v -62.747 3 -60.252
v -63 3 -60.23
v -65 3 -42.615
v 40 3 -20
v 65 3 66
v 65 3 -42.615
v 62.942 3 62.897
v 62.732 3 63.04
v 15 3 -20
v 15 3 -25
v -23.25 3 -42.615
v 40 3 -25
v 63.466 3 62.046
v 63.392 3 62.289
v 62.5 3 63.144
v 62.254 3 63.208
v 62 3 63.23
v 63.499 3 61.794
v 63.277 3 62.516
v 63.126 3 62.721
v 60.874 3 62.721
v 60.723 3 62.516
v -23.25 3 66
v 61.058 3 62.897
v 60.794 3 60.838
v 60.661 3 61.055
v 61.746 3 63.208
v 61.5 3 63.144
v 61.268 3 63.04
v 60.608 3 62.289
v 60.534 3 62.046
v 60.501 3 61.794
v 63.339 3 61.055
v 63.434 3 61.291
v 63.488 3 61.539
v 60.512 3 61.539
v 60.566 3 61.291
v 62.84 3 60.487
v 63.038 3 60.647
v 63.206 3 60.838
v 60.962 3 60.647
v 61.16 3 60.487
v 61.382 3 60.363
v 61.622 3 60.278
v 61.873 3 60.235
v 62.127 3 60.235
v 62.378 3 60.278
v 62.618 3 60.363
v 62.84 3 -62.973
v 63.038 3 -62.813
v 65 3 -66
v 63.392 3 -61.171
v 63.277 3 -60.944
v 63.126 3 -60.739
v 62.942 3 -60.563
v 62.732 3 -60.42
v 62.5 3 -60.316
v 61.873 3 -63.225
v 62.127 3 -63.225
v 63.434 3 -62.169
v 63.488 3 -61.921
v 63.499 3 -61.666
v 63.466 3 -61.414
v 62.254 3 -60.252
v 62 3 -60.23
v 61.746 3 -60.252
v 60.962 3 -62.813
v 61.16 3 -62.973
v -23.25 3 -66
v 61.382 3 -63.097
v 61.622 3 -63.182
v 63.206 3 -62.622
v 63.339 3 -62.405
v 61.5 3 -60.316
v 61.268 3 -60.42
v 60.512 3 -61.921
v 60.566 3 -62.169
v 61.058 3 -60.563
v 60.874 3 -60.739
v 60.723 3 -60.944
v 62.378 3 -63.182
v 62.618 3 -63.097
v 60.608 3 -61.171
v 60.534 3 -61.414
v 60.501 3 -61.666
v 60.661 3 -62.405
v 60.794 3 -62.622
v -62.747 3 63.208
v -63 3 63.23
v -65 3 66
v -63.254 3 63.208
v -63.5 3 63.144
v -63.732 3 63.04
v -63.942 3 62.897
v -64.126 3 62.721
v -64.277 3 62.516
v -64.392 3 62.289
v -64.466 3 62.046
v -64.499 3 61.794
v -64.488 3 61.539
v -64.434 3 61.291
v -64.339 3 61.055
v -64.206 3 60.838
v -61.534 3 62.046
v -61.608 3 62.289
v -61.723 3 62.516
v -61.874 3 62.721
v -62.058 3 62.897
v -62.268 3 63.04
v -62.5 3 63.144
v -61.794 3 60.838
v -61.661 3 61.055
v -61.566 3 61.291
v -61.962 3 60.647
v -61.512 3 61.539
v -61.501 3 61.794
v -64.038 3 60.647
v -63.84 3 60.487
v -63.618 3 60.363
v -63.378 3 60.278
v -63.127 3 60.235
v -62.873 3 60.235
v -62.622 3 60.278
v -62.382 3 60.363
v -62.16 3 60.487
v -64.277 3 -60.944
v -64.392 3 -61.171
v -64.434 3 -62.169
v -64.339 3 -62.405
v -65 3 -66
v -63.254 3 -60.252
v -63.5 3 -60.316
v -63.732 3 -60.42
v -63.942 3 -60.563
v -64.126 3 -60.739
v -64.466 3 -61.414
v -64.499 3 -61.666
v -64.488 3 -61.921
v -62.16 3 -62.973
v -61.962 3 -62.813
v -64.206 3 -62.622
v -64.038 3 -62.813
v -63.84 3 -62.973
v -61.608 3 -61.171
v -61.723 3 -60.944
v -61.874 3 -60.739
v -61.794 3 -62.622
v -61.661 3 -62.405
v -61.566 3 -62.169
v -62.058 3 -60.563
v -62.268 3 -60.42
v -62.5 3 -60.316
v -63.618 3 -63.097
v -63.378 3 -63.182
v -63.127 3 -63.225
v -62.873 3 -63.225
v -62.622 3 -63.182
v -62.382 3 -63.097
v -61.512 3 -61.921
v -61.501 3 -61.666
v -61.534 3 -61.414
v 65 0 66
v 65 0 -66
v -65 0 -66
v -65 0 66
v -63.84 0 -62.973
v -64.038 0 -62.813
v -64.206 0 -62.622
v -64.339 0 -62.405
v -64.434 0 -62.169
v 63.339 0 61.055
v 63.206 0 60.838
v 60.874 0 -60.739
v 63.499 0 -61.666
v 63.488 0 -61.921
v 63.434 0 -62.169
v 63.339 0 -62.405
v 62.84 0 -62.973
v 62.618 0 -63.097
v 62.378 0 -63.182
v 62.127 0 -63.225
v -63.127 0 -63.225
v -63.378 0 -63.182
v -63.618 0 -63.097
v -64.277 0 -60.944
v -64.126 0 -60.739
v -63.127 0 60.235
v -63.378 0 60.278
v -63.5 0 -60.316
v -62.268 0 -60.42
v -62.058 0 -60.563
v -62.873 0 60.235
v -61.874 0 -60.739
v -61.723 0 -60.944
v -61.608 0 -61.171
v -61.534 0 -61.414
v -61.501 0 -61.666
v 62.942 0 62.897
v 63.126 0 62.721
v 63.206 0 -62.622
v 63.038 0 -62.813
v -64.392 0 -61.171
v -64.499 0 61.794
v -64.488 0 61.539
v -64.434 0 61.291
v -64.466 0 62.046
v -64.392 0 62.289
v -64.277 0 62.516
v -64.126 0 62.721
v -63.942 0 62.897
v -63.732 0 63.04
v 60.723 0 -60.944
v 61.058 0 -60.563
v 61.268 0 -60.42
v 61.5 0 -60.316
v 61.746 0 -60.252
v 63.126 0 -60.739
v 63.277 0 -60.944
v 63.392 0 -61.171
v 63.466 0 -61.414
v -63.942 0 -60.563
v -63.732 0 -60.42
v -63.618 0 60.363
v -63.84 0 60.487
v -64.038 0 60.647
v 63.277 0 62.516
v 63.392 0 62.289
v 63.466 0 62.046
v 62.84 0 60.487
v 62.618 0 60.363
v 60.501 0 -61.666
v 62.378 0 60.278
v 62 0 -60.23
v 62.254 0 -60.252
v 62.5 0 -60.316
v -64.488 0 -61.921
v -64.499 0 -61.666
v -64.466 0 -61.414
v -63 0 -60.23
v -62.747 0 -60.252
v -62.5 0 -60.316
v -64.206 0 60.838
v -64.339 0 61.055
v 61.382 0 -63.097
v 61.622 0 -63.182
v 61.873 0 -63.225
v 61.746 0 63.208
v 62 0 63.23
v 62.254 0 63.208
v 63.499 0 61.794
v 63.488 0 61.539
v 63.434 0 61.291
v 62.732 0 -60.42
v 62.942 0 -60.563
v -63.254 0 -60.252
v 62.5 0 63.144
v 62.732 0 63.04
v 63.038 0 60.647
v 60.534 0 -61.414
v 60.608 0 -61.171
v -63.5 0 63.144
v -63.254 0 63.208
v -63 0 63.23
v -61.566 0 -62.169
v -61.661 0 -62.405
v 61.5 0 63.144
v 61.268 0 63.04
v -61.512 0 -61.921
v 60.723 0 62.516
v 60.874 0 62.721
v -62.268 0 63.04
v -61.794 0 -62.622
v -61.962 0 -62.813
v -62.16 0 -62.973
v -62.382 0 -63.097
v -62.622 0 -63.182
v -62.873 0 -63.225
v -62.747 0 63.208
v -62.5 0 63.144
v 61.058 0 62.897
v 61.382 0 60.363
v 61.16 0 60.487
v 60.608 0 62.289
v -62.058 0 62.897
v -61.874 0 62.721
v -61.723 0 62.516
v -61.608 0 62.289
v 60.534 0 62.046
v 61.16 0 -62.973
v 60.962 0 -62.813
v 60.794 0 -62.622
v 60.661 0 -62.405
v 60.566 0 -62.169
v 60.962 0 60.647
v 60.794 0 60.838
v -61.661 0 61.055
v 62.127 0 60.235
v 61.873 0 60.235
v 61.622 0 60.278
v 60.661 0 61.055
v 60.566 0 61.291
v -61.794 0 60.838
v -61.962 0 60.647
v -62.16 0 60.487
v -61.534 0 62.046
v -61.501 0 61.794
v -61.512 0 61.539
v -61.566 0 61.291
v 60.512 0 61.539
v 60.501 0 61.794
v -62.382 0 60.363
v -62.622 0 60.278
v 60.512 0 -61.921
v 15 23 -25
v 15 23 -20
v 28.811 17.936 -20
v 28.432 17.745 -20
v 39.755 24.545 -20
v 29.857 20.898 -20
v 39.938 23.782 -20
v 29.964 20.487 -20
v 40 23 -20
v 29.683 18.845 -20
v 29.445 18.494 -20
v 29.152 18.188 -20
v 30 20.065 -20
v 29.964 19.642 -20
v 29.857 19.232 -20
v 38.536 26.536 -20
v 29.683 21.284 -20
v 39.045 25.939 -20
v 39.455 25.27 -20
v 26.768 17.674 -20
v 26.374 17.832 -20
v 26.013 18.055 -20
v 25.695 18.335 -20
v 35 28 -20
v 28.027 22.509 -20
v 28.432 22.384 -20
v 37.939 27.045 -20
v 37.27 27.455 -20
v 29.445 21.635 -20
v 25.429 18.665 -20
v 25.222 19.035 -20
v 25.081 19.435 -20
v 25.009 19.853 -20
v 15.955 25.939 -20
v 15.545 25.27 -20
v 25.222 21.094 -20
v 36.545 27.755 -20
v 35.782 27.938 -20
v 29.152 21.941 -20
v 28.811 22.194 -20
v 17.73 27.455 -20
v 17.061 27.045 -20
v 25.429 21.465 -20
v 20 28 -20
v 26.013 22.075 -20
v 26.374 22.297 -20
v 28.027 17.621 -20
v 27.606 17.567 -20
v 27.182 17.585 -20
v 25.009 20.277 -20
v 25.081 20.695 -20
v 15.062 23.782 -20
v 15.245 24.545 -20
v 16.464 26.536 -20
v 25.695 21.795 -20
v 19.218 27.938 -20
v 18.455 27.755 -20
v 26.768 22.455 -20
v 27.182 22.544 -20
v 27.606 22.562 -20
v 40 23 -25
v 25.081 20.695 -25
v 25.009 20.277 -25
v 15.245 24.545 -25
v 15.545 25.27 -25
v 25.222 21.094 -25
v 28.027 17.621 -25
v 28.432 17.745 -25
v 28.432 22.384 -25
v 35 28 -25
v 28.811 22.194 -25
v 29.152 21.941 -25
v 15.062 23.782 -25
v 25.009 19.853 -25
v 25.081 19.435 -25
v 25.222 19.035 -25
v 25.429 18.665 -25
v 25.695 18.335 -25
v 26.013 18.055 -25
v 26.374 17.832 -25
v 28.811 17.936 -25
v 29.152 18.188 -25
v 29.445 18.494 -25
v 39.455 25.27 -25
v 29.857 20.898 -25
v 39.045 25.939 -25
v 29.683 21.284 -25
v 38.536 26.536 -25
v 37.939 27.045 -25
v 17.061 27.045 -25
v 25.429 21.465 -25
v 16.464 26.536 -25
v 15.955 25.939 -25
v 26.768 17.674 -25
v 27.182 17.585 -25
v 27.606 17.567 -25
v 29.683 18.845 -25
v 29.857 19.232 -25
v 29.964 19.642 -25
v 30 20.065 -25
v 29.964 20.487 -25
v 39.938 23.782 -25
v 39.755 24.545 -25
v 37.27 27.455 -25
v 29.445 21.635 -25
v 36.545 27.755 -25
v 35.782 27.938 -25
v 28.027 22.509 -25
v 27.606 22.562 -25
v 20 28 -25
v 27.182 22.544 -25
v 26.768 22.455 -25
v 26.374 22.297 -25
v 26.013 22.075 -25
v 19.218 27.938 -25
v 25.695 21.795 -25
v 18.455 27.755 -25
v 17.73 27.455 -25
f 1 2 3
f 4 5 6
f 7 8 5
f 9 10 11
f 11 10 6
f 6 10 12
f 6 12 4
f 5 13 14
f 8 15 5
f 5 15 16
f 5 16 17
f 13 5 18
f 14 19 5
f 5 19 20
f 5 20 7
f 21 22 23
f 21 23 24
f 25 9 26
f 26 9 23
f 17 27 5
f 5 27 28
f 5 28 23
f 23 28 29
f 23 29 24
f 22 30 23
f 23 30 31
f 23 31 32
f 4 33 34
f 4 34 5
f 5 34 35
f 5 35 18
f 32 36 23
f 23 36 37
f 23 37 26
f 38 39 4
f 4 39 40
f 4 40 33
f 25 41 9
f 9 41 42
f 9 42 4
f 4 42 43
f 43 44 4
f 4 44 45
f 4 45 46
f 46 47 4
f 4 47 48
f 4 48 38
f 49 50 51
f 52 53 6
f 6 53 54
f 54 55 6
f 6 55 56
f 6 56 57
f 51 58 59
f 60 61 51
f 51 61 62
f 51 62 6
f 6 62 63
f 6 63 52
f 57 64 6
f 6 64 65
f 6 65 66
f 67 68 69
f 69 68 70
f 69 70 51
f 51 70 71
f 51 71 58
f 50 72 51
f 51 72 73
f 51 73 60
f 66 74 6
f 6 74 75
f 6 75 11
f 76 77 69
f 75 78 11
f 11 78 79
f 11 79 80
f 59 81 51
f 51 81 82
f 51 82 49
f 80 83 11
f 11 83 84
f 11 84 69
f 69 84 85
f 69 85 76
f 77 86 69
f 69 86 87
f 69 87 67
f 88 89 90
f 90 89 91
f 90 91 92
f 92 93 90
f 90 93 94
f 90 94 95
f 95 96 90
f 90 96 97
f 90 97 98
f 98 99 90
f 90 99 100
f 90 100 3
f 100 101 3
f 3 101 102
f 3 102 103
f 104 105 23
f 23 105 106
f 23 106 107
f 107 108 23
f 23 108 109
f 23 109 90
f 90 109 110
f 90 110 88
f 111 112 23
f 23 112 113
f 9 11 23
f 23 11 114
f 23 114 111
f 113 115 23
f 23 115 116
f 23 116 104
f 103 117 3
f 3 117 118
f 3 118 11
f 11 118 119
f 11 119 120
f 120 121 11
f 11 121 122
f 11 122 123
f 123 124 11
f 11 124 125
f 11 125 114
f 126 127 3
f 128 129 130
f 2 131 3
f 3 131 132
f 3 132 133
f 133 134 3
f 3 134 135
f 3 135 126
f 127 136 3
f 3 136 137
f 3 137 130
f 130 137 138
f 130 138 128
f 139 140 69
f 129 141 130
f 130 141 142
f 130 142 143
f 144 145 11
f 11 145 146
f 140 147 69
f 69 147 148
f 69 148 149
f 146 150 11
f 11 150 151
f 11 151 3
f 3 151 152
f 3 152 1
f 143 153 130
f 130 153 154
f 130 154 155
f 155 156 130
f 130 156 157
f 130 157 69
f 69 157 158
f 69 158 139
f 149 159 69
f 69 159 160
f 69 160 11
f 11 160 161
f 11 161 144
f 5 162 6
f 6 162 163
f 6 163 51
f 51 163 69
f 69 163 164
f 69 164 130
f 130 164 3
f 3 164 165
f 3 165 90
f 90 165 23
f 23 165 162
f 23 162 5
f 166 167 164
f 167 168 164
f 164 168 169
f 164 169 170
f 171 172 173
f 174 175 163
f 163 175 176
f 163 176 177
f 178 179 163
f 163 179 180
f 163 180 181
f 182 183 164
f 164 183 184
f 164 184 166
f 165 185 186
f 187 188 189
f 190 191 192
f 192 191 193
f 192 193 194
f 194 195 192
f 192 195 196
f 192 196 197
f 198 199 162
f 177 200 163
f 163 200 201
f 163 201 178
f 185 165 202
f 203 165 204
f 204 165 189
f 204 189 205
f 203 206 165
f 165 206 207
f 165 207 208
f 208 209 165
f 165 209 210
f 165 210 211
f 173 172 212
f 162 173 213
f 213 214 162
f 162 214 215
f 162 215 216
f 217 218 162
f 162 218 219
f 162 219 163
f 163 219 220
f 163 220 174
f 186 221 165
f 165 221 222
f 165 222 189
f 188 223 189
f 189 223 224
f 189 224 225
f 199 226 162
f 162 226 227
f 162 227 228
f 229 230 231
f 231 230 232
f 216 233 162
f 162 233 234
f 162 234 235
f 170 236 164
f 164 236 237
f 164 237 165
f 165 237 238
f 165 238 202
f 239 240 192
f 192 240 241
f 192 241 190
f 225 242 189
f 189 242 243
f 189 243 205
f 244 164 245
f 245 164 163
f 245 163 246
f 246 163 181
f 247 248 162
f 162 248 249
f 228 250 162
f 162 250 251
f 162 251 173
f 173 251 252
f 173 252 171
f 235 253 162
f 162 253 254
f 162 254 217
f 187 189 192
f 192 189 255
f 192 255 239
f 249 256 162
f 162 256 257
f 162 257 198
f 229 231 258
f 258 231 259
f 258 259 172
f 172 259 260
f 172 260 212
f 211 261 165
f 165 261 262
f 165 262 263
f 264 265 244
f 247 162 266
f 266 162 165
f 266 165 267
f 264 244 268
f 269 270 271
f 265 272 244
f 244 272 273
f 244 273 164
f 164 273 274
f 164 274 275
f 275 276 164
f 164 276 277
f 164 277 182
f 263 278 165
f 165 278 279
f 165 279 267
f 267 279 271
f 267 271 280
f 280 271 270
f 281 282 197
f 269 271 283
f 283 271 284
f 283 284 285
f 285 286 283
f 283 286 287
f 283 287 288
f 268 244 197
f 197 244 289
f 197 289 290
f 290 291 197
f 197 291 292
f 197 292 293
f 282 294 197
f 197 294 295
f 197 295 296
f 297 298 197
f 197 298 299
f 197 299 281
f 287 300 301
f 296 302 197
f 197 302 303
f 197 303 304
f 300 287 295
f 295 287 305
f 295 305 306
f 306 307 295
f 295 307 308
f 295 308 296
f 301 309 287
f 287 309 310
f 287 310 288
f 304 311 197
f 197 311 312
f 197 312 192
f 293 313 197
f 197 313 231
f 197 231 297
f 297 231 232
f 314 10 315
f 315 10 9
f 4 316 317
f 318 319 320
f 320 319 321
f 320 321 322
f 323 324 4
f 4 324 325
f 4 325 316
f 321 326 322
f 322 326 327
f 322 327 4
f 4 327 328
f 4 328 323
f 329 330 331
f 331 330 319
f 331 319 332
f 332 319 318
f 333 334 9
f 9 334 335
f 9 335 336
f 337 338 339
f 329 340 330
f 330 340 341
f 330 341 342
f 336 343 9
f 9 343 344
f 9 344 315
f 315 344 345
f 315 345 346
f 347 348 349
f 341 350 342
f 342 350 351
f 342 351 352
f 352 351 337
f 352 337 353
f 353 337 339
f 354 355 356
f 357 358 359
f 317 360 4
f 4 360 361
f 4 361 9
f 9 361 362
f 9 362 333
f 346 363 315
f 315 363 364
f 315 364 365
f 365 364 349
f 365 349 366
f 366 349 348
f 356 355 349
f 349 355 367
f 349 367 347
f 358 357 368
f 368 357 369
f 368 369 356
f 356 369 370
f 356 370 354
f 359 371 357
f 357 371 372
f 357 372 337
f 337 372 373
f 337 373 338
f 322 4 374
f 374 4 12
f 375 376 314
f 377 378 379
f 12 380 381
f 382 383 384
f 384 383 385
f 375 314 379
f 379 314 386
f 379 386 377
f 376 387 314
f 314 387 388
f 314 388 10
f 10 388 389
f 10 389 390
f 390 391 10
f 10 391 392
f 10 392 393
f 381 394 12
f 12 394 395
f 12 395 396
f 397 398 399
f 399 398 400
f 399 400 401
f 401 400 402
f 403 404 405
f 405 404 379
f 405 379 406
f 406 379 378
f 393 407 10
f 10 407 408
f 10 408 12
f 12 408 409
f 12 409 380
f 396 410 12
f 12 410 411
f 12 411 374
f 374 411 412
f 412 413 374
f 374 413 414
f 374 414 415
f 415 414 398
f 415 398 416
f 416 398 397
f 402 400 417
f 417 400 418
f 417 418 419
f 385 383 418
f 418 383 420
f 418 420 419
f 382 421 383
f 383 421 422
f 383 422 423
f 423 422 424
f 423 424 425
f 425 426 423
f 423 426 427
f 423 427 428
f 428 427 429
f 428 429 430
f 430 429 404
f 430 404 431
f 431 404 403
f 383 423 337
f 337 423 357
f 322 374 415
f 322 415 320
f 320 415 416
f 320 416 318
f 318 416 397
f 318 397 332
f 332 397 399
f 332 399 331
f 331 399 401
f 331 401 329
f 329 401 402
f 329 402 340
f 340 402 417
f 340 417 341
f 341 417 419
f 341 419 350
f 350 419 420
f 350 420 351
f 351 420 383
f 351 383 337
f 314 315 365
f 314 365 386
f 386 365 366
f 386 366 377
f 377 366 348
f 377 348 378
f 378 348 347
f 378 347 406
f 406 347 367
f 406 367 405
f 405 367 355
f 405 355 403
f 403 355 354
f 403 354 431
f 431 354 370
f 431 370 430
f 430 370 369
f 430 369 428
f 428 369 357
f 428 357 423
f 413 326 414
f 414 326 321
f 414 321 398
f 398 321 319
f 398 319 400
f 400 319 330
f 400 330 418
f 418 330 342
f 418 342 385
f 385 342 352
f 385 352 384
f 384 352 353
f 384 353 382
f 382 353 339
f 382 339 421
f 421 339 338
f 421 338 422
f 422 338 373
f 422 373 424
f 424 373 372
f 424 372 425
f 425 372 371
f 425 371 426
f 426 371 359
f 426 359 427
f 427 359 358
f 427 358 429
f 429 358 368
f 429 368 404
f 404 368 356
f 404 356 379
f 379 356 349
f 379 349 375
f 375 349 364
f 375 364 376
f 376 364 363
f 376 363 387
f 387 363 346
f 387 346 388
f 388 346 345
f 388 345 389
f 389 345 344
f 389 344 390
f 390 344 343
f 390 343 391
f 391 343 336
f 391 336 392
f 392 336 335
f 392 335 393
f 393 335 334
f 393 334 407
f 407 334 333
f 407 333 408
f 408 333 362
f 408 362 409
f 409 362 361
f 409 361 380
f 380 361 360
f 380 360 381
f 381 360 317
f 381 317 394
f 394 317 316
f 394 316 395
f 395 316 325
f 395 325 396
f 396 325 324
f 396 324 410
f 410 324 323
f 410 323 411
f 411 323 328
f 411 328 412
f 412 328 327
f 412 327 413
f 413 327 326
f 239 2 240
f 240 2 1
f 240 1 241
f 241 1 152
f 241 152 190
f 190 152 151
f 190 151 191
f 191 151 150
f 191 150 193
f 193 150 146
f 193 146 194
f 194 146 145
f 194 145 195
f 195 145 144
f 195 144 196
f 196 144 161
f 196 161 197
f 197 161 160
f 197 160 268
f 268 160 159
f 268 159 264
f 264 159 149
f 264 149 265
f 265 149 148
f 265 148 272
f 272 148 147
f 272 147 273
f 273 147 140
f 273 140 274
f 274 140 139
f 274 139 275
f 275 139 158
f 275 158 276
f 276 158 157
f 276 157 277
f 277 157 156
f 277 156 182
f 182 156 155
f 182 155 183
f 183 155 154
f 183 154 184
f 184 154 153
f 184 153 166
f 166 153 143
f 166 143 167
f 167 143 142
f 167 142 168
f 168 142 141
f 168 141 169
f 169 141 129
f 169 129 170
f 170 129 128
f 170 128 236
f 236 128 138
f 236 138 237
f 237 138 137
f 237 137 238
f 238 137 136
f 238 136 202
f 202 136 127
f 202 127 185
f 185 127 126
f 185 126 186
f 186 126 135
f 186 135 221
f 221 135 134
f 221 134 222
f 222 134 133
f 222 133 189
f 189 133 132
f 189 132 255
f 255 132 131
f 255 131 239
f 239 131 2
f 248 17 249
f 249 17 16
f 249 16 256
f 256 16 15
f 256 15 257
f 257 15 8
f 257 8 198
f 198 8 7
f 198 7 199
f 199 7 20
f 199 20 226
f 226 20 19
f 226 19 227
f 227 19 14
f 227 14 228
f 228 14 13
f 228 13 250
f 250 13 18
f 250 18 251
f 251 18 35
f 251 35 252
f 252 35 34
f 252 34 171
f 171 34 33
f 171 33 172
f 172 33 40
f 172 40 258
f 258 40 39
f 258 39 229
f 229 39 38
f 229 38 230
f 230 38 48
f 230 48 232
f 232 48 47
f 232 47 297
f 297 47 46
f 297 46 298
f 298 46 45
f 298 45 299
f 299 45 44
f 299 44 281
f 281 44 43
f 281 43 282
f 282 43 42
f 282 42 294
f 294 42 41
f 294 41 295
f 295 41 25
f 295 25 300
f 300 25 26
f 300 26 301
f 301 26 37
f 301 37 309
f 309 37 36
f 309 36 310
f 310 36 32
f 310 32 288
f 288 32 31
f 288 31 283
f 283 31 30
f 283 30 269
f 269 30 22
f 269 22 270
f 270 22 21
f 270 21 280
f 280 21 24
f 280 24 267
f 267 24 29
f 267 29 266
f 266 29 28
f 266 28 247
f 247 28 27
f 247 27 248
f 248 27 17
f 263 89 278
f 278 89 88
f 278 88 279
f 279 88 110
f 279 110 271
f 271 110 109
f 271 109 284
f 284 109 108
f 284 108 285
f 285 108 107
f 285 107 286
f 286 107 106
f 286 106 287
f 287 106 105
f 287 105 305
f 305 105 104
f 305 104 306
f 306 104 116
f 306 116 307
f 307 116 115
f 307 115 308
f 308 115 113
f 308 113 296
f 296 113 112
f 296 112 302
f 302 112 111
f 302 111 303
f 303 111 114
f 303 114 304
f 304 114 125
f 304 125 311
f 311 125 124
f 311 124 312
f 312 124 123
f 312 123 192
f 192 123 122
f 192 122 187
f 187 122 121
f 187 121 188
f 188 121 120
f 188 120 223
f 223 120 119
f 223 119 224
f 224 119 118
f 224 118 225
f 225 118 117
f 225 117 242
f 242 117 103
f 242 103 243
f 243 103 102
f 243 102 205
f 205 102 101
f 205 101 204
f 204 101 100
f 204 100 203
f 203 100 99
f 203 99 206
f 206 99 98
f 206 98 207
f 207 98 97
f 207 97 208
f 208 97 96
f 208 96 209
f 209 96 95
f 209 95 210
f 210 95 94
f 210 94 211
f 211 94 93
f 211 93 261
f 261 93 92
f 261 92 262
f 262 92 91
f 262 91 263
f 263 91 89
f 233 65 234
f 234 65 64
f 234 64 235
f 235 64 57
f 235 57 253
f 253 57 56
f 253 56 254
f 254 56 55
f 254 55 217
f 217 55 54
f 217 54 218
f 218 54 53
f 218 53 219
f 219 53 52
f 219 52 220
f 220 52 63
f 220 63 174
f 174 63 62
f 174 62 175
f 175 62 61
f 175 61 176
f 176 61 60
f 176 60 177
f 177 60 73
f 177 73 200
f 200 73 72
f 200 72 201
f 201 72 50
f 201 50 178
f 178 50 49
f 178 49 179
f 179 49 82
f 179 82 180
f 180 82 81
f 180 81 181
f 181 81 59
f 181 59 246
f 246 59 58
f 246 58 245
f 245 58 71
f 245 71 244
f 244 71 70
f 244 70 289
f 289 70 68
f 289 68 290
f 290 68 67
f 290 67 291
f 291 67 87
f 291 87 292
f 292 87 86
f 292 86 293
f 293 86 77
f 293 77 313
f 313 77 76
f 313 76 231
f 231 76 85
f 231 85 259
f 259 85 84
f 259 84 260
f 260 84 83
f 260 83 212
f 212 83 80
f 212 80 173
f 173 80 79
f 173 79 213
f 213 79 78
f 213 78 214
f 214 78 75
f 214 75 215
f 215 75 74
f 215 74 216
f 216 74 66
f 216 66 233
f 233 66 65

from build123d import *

# Parameters (mm, degrees)
SKETCH1_W           = 130
SKETCH1_H           = 132
BOSS_EXTRUDE1_DEPTH = 3
SKETCH2_W           = 25
SKETCH2_H           = 5
BOSS_EXTRUDE2_DEPTH = 25
FILLET1_R           = 5
SKETCH3_R           = 2.5
CUT_EXTRUDE1_DEPTH  = 25
SKETCH4_R           = 1.5
CUT_EXTRUDE2_DEPTH  = 25


with BuildPart() as part:
    # Sketch1 → Boss-Extrude1 (new body)
    with BuildSketch(Plane(origin=(0, 0, 0), x_dir=(1, 0, 0), z_dir=(0, 1, 0))):
        Rectangle(SKETCH1_W, SKETCH1_H)
    extrude(amount=BOSS_EXTRUDE1_DEPTH)

    # Sketch2 → Boss-Extrude2 (add)
    with BuildSketch(Plane(origin=(0, 3, 0), x_dir=(1, 0, 0), z_dir=(0, 1, 0))):
        with Locations((27.5, 22.5)):
            Rectangle(SKETCH2_W, SKETCH2_H)
    extrude(amount=BOSS_EXTRUDE2_DEPTH)

    # Fillet1
    fillet1_edges = [part.edges().sort_by_distance(p)[0] for p in [
        (15, 28, -22.5),
        (40, 28, -22.5),
    ]]
    fillet(fillet1_edges, radius=FILLET1_R)

    # Sketch3 → Cut-Extrude1 (cut)
    with BuildSketch(Plane.XY.offset(-20)):
        with Locations((27.5, 20.0647296)):
            Circle(SKETCH3_R)
    extrude(amount=-CUT_EXTRUDE1_DEPTH, mode=Mode.SUBTRACT)

    # Sketch4 → Cut-Extrude2 (cut)
    with BuildSketch(Plane(origin=(0, 3, 0), x_dir=(1, 0, 0), z_dir=(0, 1, 0))):
        with Locations(Location((-63, 61.73, 0), (0, 0, 270))):
            Circle(SKETCH4_R)
        with Locations(Location((62, 61.73, 0), (0, 0, 270))):
            Circle(SKETCH4_R)
        with Locations(Location((-63, -61.73, 0), (0, 0, 270))):
            Circle(SKETCH4_R)
        with Locations(Location((62, -61.73, 0), (0, 0, 270))):
            Circle(SKETCH4_R)
    extrude(amount=-CUT_EXTRUDE2_DEPTH, mode=Mode.SUBTRACT)


solid = part.part
